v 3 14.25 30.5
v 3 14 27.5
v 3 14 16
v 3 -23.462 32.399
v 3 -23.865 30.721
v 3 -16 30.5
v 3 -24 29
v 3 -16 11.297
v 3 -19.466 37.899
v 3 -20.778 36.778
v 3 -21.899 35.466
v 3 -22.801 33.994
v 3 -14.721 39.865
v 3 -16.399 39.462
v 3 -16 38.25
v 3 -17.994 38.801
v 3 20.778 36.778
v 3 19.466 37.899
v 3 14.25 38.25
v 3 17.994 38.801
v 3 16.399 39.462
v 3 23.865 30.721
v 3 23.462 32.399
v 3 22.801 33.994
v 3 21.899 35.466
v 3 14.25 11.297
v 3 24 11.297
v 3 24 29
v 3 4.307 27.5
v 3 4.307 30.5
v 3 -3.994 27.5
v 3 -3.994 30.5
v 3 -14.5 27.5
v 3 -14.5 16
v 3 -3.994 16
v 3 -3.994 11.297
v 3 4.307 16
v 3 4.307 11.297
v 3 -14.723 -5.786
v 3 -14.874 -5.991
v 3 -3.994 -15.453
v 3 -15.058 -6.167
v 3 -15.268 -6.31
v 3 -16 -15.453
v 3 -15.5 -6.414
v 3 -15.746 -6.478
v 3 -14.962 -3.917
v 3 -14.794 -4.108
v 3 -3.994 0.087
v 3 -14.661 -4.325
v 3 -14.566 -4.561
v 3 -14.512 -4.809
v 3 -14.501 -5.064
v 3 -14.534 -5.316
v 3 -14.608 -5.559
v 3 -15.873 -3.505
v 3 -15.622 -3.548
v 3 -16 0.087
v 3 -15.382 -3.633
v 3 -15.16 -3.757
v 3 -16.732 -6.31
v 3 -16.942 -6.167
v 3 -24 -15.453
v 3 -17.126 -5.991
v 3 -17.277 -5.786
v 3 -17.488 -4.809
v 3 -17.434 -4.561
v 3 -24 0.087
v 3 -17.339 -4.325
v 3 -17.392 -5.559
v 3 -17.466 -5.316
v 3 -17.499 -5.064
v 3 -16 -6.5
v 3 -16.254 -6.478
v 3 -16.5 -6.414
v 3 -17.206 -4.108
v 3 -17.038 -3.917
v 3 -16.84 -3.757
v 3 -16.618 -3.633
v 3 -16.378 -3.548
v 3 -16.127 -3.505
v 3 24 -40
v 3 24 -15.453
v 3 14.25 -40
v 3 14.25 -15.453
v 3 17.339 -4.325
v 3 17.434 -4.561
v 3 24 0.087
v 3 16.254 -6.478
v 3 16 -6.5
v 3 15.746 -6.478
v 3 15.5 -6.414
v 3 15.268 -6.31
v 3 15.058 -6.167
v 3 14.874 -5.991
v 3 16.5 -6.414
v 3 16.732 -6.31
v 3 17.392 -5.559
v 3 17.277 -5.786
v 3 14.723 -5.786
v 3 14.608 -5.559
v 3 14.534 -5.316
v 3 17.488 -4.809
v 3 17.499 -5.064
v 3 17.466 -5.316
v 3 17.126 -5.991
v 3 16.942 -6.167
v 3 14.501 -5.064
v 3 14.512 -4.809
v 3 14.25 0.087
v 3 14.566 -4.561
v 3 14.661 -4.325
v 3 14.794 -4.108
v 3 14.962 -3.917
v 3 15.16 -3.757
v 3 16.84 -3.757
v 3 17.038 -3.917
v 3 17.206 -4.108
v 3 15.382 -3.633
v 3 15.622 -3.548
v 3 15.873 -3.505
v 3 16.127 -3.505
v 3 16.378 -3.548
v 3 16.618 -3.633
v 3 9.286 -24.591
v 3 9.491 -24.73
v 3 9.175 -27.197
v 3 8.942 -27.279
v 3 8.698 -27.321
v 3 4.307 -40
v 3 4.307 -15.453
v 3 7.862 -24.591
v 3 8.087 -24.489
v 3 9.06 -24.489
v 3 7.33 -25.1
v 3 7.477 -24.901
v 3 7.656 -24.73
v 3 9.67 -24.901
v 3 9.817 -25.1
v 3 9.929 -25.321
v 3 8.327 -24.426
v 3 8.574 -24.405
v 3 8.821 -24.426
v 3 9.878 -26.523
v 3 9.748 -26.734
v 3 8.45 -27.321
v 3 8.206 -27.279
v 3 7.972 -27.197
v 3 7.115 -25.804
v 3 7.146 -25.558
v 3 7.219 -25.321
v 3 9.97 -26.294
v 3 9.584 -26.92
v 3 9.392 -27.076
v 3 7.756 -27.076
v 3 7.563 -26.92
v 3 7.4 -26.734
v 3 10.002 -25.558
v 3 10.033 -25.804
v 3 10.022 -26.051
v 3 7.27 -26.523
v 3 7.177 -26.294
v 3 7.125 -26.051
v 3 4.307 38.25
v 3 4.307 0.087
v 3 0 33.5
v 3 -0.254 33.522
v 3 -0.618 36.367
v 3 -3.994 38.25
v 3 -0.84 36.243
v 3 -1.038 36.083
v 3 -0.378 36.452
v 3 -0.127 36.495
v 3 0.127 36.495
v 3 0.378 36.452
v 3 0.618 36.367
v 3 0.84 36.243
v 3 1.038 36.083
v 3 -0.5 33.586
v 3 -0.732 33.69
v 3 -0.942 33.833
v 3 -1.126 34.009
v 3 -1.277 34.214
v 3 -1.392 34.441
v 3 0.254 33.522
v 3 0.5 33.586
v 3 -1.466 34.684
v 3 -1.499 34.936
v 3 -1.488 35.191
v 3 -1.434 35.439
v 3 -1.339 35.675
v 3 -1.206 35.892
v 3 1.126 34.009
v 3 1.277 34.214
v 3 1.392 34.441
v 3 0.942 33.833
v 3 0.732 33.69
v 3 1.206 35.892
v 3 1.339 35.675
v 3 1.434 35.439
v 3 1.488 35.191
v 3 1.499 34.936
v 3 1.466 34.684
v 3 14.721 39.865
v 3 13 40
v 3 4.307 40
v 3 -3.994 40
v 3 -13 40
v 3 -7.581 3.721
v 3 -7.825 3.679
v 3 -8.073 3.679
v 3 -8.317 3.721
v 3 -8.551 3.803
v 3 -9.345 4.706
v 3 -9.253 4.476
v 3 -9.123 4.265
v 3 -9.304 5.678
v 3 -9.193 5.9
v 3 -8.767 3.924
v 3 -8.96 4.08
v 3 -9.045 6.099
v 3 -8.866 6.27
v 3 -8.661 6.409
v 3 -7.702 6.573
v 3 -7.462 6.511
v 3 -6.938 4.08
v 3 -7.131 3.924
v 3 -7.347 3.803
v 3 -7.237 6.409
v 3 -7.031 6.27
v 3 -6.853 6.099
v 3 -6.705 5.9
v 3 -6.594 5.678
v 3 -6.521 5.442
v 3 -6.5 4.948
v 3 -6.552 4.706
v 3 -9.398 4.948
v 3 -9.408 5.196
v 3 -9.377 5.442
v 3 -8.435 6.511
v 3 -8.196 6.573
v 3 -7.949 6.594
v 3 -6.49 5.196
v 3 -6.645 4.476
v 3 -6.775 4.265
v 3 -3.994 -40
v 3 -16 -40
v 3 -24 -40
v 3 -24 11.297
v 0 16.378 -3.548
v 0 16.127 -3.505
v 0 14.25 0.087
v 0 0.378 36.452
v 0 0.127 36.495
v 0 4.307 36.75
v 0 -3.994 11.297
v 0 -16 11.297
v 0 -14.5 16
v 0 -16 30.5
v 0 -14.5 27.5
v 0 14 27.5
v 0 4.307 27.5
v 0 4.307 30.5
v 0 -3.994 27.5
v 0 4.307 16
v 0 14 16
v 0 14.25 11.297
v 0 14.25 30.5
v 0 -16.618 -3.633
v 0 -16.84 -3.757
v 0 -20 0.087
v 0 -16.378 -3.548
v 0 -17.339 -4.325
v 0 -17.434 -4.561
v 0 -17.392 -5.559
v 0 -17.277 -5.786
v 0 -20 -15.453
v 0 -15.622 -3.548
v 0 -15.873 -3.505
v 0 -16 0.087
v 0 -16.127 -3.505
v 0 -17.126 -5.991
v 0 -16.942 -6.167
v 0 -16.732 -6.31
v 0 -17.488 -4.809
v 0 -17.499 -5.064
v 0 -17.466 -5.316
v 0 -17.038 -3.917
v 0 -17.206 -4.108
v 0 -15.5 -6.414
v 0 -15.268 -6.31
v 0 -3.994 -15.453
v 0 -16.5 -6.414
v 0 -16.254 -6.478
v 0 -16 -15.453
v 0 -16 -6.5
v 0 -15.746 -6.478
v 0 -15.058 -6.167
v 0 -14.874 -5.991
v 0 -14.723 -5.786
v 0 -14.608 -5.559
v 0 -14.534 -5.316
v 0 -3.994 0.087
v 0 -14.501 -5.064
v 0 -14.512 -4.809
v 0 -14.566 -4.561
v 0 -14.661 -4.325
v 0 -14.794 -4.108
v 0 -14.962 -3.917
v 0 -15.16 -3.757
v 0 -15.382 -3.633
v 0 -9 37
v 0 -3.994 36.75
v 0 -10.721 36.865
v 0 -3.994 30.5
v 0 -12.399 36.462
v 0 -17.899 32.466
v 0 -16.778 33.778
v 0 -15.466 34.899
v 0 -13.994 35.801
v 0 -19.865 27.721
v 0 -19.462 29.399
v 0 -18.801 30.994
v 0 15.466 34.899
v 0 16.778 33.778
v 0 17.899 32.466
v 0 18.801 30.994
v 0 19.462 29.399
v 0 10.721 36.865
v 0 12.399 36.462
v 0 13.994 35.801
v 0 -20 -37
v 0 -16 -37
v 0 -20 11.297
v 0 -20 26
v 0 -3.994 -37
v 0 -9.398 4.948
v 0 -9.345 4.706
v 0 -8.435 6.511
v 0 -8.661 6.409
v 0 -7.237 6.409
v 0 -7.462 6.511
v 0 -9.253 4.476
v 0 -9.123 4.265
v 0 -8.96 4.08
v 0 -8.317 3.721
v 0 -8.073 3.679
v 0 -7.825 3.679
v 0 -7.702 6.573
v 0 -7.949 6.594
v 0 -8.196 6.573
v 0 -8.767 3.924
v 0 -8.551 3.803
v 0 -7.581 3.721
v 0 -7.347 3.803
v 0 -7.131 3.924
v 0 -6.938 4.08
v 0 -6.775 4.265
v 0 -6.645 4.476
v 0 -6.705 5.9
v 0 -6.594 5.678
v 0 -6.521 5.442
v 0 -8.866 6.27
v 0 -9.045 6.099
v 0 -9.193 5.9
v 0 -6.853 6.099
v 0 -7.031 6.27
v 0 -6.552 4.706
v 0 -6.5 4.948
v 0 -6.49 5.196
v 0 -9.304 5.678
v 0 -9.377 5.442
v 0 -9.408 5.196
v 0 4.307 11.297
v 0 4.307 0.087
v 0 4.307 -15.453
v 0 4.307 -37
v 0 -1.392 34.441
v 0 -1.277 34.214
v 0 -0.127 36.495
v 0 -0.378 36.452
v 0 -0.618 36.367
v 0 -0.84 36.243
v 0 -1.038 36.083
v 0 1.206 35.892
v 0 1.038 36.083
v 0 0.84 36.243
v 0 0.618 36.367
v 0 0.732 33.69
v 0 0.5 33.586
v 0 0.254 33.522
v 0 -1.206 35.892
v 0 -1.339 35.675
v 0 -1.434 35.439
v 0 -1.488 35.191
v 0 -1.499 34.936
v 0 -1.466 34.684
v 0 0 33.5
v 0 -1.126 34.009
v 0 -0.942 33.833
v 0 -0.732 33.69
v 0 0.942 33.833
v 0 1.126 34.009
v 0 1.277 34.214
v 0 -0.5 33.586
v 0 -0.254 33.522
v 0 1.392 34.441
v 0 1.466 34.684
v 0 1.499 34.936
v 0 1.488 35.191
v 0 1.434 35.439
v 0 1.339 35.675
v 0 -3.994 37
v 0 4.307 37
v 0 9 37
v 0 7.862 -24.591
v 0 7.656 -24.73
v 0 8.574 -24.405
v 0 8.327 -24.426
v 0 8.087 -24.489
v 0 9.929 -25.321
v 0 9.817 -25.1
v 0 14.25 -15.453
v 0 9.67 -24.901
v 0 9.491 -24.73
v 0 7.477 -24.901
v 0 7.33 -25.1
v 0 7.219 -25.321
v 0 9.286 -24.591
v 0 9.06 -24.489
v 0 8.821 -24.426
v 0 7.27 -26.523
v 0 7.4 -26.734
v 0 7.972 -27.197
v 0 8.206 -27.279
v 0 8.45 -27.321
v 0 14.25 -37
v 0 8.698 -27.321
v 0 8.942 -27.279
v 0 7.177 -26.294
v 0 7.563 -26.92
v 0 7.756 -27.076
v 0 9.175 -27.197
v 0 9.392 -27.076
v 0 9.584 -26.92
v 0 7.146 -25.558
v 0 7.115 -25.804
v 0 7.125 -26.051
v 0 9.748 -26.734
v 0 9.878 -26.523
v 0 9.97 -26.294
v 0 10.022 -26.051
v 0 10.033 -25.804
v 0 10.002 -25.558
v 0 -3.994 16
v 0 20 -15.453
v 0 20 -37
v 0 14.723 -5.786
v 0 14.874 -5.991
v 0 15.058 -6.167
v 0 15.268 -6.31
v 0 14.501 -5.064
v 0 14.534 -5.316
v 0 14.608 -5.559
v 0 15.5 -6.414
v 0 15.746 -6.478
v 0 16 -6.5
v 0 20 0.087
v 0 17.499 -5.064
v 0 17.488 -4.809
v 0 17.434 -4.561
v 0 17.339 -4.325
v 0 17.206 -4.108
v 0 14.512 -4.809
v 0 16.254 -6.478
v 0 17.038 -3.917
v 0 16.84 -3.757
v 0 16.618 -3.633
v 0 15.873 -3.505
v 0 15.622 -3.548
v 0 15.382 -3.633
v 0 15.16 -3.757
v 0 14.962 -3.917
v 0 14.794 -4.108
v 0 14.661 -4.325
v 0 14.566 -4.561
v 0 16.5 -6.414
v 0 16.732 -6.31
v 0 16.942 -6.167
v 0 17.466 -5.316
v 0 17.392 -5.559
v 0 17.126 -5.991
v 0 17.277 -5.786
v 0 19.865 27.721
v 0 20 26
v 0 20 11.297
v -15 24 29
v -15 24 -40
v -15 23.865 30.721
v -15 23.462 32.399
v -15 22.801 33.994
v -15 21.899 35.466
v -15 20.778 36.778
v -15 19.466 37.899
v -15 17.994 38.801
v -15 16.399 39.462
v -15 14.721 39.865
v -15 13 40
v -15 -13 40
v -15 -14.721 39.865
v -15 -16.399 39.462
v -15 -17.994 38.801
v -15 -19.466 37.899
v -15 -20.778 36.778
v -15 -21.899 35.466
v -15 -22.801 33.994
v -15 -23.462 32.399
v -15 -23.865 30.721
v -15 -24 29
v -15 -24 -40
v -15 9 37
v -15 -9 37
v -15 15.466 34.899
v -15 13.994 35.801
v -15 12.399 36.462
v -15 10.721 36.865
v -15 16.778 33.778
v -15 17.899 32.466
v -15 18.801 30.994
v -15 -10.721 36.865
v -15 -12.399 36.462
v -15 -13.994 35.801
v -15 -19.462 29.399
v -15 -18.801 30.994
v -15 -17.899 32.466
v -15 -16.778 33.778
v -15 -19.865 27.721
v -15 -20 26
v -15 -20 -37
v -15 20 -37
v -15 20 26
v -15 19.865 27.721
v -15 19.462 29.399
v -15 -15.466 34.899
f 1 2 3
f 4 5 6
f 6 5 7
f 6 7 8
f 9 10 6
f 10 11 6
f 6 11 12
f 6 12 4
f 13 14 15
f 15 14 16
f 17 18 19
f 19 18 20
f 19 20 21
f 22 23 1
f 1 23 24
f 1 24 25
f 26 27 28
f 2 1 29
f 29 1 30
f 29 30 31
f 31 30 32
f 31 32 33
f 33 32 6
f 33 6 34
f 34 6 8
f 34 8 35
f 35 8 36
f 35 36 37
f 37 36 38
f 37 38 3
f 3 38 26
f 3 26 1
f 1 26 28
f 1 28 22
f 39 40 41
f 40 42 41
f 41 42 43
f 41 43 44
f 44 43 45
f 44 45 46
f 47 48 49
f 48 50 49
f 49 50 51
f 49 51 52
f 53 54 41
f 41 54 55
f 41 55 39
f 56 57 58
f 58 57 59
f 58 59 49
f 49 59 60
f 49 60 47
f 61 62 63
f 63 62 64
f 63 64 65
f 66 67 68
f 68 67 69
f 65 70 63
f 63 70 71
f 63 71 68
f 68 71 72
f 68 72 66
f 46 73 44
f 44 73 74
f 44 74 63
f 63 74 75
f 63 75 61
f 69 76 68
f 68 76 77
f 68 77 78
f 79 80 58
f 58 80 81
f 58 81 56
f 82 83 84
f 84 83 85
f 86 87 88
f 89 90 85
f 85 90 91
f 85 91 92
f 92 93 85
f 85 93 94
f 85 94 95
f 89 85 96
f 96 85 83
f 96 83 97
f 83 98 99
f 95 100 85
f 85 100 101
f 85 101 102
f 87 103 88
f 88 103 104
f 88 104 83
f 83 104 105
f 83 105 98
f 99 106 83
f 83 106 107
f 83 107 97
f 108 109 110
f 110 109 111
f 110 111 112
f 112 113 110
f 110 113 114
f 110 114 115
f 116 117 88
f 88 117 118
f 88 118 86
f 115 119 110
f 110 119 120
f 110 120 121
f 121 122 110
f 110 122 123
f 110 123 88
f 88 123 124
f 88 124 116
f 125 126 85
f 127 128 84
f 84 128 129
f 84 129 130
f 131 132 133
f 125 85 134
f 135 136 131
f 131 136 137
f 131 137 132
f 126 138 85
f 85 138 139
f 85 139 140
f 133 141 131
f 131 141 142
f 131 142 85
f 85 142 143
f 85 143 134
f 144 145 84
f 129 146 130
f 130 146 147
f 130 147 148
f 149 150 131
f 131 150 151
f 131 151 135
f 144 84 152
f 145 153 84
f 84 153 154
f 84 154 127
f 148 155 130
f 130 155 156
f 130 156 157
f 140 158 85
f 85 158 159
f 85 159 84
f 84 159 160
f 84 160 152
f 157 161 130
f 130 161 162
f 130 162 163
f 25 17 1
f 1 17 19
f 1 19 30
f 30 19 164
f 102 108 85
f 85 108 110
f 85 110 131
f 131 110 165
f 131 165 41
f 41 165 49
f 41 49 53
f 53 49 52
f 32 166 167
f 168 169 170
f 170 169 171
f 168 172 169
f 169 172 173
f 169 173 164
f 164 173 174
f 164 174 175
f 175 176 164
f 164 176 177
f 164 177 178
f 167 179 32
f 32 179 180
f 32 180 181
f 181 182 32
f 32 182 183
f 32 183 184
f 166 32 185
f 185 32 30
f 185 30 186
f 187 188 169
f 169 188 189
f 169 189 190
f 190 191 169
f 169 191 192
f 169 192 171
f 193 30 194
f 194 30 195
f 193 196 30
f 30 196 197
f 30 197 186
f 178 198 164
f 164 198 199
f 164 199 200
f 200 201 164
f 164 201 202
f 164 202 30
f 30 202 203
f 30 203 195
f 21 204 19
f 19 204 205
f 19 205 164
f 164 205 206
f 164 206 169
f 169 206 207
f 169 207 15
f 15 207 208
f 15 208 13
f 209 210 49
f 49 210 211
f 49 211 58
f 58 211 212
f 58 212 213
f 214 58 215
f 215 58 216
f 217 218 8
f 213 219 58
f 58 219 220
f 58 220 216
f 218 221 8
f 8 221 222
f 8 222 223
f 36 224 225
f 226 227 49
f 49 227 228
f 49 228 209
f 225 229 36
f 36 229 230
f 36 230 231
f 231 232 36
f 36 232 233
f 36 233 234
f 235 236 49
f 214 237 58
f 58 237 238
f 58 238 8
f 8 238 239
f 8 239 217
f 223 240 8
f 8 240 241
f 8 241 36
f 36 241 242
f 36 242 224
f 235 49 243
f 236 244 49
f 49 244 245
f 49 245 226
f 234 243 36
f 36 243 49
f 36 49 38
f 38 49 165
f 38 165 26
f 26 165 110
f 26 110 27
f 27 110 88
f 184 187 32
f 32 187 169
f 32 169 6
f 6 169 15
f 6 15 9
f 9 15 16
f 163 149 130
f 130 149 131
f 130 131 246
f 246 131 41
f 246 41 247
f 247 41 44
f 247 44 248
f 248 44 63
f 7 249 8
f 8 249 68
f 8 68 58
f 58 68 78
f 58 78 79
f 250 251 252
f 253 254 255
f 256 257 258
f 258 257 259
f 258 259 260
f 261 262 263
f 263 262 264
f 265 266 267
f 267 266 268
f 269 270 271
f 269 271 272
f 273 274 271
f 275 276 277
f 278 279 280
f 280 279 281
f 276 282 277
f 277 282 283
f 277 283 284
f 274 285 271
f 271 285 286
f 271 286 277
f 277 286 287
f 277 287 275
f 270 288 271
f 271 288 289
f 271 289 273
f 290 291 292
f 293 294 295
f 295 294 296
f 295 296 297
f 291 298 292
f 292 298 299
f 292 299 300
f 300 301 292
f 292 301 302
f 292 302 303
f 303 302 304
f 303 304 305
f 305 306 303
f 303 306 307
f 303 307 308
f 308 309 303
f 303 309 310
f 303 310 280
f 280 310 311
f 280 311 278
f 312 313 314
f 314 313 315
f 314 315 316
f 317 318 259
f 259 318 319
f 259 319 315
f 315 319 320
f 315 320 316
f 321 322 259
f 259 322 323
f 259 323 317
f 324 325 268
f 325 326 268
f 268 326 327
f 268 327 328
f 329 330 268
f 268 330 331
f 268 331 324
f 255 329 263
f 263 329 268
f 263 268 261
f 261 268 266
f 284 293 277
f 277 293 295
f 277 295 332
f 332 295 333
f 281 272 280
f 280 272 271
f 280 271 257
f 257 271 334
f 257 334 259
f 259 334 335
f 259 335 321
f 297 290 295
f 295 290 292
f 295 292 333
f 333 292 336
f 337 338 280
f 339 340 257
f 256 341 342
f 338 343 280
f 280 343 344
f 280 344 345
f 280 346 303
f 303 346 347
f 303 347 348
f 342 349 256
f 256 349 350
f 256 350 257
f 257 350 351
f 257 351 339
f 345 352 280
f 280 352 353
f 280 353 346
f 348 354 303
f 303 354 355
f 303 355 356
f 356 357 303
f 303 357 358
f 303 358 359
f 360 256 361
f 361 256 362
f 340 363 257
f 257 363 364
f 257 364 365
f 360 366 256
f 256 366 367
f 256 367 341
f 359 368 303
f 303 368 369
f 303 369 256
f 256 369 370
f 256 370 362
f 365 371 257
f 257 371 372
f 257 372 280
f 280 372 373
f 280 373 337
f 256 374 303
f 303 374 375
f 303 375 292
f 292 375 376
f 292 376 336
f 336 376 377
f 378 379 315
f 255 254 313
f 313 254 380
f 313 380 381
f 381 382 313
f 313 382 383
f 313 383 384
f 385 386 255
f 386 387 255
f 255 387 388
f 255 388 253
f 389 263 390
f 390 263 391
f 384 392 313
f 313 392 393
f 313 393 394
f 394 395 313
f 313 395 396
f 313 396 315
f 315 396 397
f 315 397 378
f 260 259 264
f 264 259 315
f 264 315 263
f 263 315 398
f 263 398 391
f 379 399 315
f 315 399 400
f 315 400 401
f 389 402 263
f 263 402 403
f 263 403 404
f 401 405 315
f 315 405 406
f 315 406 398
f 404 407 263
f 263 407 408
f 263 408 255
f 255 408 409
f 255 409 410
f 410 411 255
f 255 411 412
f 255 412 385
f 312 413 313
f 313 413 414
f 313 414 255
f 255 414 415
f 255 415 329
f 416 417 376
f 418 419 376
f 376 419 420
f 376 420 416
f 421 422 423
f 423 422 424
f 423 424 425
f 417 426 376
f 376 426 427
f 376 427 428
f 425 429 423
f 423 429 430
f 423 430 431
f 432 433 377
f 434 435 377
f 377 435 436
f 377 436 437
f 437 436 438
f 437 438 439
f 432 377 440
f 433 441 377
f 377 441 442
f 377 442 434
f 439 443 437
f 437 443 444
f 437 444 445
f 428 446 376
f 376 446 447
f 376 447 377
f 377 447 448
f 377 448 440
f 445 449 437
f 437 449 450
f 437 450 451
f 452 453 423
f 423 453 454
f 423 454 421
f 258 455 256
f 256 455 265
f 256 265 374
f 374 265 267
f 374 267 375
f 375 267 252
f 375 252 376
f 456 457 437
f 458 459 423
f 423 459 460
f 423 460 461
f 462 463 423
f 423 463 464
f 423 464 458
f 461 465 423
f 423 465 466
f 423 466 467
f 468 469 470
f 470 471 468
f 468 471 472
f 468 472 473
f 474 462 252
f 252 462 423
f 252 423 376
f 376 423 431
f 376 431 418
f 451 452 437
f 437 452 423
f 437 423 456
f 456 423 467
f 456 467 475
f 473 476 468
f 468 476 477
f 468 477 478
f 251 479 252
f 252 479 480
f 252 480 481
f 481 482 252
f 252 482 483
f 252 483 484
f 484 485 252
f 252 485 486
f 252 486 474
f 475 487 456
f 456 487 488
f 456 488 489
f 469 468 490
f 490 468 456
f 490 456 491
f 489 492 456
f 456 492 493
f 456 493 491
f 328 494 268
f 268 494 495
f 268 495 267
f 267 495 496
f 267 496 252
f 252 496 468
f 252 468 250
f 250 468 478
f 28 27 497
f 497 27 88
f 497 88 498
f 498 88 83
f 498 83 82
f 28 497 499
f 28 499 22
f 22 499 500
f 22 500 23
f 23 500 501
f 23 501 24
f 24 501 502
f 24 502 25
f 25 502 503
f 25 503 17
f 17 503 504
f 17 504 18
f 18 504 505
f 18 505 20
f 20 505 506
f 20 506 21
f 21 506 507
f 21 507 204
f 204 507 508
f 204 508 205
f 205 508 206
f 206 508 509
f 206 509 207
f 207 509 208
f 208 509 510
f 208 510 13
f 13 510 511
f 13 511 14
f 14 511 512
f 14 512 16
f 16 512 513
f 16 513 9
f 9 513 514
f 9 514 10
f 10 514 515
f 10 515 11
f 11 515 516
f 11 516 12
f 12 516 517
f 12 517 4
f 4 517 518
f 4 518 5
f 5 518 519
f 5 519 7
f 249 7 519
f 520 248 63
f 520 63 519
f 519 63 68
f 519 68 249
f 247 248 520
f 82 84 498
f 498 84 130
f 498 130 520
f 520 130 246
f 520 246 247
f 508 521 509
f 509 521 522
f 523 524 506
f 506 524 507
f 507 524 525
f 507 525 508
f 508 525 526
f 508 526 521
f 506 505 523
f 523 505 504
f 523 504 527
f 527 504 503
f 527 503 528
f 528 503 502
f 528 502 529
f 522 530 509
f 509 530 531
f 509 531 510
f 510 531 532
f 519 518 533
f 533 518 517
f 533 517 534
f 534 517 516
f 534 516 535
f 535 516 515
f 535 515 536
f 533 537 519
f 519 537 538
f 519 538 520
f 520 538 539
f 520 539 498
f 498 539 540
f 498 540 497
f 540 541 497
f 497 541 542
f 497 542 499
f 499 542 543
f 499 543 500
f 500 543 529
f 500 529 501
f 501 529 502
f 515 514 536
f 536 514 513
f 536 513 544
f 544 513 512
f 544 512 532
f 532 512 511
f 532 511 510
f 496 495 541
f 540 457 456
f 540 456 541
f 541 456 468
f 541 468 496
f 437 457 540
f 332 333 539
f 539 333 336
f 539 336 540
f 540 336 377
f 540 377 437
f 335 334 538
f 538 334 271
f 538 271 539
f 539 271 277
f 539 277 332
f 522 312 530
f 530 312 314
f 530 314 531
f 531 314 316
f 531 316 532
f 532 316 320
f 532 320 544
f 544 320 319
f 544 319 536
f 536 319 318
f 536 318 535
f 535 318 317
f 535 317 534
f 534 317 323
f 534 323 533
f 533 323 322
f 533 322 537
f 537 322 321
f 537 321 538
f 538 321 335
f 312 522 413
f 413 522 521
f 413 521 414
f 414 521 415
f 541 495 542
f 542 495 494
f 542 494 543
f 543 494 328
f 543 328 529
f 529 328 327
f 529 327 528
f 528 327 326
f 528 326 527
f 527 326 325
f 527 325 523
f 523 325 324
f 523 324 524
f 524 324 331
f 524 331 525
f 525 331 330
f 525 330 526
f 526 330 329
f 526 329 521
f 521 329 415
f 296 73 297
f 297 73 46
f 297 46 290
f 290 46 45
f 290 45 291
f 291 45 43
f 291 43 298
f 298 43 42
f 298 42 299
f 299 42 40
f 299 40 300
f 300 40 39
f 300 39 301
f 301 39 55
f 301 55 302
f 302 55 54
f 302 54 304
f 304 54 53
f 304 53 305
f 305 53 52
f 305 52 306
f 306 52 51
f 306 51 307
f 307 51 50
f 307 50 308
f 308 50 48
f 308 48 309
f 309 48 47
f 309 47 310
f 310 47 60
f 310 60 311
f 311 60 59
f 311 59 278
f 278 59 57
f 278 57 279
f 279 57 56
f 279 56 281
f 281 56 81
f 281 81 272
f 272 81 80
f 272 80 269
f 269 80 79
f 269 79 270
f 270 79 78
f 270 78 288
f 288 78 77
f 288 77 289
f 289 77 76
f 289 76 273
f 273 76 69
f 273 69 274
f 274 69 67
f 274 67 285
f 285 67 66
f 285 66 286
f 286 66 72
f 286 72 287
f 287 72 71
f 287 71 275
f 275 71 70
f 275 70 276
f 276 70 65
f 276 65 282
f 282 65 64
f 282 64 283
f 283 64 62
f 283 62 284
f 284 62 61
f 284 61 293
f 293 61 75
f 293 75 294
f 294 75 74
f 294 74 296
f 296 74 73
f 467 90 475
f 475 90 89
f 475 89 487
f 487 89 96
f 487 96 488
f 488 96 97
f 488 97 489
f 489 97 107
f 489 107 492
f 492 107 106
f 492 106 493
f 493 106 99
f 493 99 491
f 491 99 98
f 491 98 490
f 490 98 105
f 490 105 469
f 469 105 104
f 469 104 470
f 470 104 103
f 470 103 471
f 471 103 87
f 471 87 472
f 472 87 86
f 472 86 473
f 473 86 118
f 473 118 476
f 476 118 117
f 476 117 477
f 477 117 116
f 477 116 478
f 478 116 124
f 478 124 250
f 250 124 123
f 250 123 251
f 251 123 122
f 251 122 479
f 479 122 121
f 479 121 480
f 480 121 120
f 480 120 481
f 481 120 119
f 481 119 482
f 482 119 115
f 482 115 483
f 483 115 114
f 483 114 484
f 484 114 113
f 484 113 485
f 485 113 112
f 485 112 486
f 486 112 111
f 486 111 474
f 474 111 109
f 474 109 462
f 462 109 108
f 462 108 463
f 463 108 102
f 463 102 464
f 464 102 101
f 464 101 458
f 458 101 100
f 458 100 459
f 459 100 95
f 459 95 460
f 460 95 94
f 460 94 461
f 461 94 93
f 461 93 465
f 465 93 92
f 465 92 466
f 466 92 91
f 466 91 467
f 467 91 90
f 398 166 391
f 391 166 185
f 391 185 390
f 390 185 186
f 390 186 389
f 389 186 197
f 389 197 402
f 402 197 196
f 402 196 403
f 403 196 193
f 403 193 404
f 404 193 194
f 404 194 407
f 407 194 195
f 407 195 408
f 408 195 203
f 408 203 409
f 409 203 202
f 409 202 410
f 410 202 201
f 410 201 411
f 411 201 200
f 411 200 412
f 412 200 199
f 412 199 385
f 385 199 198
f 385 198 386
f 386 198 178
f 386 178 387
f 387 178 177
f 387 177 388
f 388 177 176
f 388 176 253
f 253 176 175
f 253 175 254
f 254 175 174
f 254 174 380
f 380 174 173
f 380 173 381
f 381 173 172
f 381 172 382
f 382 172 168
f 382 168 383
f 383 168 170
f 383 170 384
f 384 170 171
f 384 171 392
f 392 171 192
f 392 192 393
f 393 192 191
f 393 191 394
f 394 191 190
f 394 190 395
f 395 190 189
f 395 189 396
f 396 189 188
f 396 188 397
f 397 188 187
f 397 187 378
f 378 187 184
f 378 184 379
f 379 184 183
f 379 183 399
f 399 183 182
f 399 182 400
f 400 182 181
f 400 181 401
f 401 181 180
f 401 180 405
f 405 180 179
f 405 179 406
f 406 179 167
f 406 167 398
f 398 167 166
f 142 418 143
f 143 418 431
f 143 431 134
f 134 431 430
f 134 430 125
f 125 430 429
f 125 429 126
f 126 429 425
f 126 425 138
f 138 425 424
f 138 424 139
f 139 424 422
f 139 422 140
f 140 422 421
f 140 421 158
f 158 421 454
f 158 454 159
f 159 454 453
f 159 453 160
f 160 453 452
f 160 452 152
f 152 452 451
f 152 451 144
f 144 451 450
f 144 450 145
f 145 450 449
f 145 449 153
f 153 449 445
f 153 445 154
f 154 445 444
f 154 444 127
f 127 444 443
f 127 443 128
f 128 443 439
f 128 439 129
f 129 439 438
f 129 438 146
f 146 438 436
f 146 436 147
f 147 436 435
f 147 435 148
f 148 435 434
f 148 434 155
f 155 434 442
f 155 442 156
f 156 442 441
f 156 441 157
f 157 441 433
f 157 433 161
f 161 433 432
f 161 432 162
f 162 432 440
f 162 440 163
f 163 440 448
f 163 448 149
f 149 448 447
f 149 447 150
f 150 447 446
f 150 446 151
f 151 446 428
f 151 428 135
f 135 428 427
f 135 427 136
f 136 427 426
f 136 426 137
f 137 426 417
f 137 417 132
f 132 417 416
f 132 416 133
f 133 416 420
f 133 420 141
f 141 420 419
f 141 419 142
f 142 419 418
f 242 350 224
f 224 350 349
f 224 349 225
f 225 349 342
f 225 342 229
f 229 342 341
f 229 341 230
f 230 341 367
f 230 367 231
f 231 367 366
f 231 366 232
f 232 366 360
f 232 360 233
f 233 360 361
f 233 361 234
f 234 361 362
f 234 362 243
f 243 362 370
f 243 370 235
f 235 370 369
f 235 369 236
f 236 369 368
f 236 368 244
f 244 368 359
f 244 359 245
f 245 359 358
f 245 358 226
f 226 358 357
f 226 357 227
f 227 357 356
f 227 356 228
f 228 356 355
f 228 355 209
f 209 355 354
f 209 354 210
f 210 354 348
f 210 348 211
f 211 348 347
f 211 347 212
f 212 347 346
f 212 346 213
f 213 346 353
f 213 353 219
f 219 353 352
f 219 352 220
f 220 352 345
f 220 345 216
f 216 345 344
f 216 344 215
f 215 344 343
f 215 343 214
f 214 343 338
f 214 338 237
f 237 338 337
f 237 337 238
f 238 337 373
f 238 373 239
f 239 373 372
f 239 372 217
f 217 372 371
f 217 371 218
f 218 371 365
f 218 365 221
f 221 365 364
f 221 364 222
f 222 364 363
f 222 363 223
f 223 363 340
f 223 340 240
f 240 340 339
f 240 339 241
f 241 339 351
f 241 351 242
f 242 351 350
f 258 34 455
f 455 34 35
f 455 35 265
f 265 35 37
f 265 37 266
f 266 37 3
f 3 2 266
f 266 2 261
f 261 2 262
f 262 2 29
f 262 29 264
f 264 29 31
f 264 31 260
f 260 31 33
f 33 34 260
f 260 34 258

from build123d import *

# Parameters (mm, degrees)
RESSALTO_EXTRUS_O2_DEPTH = 3
RESSALTO_EXTRUS_O3_START = 15
RESSALTO_EXTRUS_O3_DEPTH = 15
ESBO_O3_R                = 1.5
CORTE_EXTRUS_O1_DEPTH    = 51
ESBO_O4_R                = 1.4605
CORTE_EXTRUS_O2_DEPTH    = 50
ESBO_O5_W                = 28.5
ESBO_O5_H                = 11.5
ESBO_O5_W_2              = 27.5
ESBO_O5_H_2              = 10.5
CORTE_EXTRUS_O3_DEPTH    = 50


with BuildPart() as part:
    # Esboço1 → Ressalto-extrusão2 (new body)
    with BuildSketch(Plane.YZ):
        with BuildLine():
            Line((-13, 40), (13, 40))
            ThreePointArc((13, 40), (20.778174593, 36.778174593), (24, 29))
            Line((24, 29), (24, -40))
            Line((24, -40), (-24, -40))
            Line((-24, -40), (-24, 29))
            ThreePointArc((-24, 29), (-20.778174593, 36.778174593), (-13, 40))
        make_face()
    extrude(amount=RESSALTO_EXTRUS_O2_DEPTH)

    # Esboço2 → Ressalto-extrusão3 (add)
    with BuildSketch(Plane(origin=(0, 0, 0), x_dir=(0, -1, 0), z_dir=(-1, 0, 0)).offset(RESSALTO_EXTRUS_O3_START)):
        with BuildLine():
            Line((-13, 40), (13, 40))
            ThreePointArc((13, 40), (20.778174593, 36.778174593), (24, 29))
            Line((24, 29), (24, -40))
            Line((24, -40), (-24, -40))
            Line((-24, -40), (-24, 29))
            ThreePointArc((-24, 29), (-20.778174593, 36.778174593), (-13, 40))
        make_face()
        with BuildLine():
            Line((-20, -37), (20, -37))
            Line((20, -37), (20, 26))
            ThreePointArc((20, 26), (16.778174593, 33.778174593), (9, 37))
            Line((9, 37), (-9, 37))
            ThreePointArc((-9, 37), (-16.778174593, 33.778174593), (-20, 26))
            Line((-20, 26), (-20, -37))
        make_face(mode=Mode.SUBTRACT)
    extrude(amount=-RESSALTO_EXTRUS_O3_DEPTH)

    # Esboço3 → Corte-extrusão1 (cut, through all)
    with BuildSketch(Plane.YZ.offset(3)):
        with Locations(Location((0, 35, 0), (0, 0, 270))):
            Circle(ESBO_O3_R)
        with Locations(Location((16, -5, 0), (0, 0, 270))):
            Circle(ESBO_O3_R)
        with Locations(Location((-16, -5, 0), (0, 0, 270))):
            Circle(ESBO_O3_R)
    extrude(amount=-CORTE_EXTRUS_O1_DEPTH, mode=Mode.SUBTRACT)

    # Esboço4 → Corte-extrusão2 (cut, through all)
    with BuildSketch(Plane(origin=(0, 0, 0), x_dir=(0, -1, 0), z_dir=(-1, 0, 0))):
        with Locations(Location((7.948942217, 5.133929433, 0), (0, 0, 90))):
            Circle(ESBO_O4_R)
        with Locations(Location((-8.5738, -25.8659, 0), (0, 0, 90))):
            Circle(ESBO_O4_R)
    extrude(amount=-CORTE_EXTRUS_O2_DEPTH, mode=Mode.SUBTRACT)

    # Esboço5 → Corte-extrusão3 (cut, through all)
    # profile 1 of 2: a face of its own
    with BuildSketch(Plane(origin=(0, 0, 0), x_dir=(0, -1, 0), z_dir=(-1, 0, 0))):
        with Locations((0.25, 21.75)):
            Rectangle(ESBO_O5_W, ESBO_O5_H)
        with Locations((0.25, 21.75)):
            Rectangle(ESBO_O5_W_2, ESBO_O5_H_2, mode=Mode.SUBTRACT)
    # profile 2 of 2: a face of its own
    with BuildSketch(Plane(origin=(0, 0, 0), x_dir=(0, -1, 0), z_dir=(-1, 0, 0))):
        with Locations((0.25, 21.75)):
            Rectangle(ESBO_O5_W_2, ESBO_O5_H_2)
    extrude(amount=-CORTE_EXTRUS_O3_DEPTH, mode=Mode.SUBTRACT)


solid = part.part
